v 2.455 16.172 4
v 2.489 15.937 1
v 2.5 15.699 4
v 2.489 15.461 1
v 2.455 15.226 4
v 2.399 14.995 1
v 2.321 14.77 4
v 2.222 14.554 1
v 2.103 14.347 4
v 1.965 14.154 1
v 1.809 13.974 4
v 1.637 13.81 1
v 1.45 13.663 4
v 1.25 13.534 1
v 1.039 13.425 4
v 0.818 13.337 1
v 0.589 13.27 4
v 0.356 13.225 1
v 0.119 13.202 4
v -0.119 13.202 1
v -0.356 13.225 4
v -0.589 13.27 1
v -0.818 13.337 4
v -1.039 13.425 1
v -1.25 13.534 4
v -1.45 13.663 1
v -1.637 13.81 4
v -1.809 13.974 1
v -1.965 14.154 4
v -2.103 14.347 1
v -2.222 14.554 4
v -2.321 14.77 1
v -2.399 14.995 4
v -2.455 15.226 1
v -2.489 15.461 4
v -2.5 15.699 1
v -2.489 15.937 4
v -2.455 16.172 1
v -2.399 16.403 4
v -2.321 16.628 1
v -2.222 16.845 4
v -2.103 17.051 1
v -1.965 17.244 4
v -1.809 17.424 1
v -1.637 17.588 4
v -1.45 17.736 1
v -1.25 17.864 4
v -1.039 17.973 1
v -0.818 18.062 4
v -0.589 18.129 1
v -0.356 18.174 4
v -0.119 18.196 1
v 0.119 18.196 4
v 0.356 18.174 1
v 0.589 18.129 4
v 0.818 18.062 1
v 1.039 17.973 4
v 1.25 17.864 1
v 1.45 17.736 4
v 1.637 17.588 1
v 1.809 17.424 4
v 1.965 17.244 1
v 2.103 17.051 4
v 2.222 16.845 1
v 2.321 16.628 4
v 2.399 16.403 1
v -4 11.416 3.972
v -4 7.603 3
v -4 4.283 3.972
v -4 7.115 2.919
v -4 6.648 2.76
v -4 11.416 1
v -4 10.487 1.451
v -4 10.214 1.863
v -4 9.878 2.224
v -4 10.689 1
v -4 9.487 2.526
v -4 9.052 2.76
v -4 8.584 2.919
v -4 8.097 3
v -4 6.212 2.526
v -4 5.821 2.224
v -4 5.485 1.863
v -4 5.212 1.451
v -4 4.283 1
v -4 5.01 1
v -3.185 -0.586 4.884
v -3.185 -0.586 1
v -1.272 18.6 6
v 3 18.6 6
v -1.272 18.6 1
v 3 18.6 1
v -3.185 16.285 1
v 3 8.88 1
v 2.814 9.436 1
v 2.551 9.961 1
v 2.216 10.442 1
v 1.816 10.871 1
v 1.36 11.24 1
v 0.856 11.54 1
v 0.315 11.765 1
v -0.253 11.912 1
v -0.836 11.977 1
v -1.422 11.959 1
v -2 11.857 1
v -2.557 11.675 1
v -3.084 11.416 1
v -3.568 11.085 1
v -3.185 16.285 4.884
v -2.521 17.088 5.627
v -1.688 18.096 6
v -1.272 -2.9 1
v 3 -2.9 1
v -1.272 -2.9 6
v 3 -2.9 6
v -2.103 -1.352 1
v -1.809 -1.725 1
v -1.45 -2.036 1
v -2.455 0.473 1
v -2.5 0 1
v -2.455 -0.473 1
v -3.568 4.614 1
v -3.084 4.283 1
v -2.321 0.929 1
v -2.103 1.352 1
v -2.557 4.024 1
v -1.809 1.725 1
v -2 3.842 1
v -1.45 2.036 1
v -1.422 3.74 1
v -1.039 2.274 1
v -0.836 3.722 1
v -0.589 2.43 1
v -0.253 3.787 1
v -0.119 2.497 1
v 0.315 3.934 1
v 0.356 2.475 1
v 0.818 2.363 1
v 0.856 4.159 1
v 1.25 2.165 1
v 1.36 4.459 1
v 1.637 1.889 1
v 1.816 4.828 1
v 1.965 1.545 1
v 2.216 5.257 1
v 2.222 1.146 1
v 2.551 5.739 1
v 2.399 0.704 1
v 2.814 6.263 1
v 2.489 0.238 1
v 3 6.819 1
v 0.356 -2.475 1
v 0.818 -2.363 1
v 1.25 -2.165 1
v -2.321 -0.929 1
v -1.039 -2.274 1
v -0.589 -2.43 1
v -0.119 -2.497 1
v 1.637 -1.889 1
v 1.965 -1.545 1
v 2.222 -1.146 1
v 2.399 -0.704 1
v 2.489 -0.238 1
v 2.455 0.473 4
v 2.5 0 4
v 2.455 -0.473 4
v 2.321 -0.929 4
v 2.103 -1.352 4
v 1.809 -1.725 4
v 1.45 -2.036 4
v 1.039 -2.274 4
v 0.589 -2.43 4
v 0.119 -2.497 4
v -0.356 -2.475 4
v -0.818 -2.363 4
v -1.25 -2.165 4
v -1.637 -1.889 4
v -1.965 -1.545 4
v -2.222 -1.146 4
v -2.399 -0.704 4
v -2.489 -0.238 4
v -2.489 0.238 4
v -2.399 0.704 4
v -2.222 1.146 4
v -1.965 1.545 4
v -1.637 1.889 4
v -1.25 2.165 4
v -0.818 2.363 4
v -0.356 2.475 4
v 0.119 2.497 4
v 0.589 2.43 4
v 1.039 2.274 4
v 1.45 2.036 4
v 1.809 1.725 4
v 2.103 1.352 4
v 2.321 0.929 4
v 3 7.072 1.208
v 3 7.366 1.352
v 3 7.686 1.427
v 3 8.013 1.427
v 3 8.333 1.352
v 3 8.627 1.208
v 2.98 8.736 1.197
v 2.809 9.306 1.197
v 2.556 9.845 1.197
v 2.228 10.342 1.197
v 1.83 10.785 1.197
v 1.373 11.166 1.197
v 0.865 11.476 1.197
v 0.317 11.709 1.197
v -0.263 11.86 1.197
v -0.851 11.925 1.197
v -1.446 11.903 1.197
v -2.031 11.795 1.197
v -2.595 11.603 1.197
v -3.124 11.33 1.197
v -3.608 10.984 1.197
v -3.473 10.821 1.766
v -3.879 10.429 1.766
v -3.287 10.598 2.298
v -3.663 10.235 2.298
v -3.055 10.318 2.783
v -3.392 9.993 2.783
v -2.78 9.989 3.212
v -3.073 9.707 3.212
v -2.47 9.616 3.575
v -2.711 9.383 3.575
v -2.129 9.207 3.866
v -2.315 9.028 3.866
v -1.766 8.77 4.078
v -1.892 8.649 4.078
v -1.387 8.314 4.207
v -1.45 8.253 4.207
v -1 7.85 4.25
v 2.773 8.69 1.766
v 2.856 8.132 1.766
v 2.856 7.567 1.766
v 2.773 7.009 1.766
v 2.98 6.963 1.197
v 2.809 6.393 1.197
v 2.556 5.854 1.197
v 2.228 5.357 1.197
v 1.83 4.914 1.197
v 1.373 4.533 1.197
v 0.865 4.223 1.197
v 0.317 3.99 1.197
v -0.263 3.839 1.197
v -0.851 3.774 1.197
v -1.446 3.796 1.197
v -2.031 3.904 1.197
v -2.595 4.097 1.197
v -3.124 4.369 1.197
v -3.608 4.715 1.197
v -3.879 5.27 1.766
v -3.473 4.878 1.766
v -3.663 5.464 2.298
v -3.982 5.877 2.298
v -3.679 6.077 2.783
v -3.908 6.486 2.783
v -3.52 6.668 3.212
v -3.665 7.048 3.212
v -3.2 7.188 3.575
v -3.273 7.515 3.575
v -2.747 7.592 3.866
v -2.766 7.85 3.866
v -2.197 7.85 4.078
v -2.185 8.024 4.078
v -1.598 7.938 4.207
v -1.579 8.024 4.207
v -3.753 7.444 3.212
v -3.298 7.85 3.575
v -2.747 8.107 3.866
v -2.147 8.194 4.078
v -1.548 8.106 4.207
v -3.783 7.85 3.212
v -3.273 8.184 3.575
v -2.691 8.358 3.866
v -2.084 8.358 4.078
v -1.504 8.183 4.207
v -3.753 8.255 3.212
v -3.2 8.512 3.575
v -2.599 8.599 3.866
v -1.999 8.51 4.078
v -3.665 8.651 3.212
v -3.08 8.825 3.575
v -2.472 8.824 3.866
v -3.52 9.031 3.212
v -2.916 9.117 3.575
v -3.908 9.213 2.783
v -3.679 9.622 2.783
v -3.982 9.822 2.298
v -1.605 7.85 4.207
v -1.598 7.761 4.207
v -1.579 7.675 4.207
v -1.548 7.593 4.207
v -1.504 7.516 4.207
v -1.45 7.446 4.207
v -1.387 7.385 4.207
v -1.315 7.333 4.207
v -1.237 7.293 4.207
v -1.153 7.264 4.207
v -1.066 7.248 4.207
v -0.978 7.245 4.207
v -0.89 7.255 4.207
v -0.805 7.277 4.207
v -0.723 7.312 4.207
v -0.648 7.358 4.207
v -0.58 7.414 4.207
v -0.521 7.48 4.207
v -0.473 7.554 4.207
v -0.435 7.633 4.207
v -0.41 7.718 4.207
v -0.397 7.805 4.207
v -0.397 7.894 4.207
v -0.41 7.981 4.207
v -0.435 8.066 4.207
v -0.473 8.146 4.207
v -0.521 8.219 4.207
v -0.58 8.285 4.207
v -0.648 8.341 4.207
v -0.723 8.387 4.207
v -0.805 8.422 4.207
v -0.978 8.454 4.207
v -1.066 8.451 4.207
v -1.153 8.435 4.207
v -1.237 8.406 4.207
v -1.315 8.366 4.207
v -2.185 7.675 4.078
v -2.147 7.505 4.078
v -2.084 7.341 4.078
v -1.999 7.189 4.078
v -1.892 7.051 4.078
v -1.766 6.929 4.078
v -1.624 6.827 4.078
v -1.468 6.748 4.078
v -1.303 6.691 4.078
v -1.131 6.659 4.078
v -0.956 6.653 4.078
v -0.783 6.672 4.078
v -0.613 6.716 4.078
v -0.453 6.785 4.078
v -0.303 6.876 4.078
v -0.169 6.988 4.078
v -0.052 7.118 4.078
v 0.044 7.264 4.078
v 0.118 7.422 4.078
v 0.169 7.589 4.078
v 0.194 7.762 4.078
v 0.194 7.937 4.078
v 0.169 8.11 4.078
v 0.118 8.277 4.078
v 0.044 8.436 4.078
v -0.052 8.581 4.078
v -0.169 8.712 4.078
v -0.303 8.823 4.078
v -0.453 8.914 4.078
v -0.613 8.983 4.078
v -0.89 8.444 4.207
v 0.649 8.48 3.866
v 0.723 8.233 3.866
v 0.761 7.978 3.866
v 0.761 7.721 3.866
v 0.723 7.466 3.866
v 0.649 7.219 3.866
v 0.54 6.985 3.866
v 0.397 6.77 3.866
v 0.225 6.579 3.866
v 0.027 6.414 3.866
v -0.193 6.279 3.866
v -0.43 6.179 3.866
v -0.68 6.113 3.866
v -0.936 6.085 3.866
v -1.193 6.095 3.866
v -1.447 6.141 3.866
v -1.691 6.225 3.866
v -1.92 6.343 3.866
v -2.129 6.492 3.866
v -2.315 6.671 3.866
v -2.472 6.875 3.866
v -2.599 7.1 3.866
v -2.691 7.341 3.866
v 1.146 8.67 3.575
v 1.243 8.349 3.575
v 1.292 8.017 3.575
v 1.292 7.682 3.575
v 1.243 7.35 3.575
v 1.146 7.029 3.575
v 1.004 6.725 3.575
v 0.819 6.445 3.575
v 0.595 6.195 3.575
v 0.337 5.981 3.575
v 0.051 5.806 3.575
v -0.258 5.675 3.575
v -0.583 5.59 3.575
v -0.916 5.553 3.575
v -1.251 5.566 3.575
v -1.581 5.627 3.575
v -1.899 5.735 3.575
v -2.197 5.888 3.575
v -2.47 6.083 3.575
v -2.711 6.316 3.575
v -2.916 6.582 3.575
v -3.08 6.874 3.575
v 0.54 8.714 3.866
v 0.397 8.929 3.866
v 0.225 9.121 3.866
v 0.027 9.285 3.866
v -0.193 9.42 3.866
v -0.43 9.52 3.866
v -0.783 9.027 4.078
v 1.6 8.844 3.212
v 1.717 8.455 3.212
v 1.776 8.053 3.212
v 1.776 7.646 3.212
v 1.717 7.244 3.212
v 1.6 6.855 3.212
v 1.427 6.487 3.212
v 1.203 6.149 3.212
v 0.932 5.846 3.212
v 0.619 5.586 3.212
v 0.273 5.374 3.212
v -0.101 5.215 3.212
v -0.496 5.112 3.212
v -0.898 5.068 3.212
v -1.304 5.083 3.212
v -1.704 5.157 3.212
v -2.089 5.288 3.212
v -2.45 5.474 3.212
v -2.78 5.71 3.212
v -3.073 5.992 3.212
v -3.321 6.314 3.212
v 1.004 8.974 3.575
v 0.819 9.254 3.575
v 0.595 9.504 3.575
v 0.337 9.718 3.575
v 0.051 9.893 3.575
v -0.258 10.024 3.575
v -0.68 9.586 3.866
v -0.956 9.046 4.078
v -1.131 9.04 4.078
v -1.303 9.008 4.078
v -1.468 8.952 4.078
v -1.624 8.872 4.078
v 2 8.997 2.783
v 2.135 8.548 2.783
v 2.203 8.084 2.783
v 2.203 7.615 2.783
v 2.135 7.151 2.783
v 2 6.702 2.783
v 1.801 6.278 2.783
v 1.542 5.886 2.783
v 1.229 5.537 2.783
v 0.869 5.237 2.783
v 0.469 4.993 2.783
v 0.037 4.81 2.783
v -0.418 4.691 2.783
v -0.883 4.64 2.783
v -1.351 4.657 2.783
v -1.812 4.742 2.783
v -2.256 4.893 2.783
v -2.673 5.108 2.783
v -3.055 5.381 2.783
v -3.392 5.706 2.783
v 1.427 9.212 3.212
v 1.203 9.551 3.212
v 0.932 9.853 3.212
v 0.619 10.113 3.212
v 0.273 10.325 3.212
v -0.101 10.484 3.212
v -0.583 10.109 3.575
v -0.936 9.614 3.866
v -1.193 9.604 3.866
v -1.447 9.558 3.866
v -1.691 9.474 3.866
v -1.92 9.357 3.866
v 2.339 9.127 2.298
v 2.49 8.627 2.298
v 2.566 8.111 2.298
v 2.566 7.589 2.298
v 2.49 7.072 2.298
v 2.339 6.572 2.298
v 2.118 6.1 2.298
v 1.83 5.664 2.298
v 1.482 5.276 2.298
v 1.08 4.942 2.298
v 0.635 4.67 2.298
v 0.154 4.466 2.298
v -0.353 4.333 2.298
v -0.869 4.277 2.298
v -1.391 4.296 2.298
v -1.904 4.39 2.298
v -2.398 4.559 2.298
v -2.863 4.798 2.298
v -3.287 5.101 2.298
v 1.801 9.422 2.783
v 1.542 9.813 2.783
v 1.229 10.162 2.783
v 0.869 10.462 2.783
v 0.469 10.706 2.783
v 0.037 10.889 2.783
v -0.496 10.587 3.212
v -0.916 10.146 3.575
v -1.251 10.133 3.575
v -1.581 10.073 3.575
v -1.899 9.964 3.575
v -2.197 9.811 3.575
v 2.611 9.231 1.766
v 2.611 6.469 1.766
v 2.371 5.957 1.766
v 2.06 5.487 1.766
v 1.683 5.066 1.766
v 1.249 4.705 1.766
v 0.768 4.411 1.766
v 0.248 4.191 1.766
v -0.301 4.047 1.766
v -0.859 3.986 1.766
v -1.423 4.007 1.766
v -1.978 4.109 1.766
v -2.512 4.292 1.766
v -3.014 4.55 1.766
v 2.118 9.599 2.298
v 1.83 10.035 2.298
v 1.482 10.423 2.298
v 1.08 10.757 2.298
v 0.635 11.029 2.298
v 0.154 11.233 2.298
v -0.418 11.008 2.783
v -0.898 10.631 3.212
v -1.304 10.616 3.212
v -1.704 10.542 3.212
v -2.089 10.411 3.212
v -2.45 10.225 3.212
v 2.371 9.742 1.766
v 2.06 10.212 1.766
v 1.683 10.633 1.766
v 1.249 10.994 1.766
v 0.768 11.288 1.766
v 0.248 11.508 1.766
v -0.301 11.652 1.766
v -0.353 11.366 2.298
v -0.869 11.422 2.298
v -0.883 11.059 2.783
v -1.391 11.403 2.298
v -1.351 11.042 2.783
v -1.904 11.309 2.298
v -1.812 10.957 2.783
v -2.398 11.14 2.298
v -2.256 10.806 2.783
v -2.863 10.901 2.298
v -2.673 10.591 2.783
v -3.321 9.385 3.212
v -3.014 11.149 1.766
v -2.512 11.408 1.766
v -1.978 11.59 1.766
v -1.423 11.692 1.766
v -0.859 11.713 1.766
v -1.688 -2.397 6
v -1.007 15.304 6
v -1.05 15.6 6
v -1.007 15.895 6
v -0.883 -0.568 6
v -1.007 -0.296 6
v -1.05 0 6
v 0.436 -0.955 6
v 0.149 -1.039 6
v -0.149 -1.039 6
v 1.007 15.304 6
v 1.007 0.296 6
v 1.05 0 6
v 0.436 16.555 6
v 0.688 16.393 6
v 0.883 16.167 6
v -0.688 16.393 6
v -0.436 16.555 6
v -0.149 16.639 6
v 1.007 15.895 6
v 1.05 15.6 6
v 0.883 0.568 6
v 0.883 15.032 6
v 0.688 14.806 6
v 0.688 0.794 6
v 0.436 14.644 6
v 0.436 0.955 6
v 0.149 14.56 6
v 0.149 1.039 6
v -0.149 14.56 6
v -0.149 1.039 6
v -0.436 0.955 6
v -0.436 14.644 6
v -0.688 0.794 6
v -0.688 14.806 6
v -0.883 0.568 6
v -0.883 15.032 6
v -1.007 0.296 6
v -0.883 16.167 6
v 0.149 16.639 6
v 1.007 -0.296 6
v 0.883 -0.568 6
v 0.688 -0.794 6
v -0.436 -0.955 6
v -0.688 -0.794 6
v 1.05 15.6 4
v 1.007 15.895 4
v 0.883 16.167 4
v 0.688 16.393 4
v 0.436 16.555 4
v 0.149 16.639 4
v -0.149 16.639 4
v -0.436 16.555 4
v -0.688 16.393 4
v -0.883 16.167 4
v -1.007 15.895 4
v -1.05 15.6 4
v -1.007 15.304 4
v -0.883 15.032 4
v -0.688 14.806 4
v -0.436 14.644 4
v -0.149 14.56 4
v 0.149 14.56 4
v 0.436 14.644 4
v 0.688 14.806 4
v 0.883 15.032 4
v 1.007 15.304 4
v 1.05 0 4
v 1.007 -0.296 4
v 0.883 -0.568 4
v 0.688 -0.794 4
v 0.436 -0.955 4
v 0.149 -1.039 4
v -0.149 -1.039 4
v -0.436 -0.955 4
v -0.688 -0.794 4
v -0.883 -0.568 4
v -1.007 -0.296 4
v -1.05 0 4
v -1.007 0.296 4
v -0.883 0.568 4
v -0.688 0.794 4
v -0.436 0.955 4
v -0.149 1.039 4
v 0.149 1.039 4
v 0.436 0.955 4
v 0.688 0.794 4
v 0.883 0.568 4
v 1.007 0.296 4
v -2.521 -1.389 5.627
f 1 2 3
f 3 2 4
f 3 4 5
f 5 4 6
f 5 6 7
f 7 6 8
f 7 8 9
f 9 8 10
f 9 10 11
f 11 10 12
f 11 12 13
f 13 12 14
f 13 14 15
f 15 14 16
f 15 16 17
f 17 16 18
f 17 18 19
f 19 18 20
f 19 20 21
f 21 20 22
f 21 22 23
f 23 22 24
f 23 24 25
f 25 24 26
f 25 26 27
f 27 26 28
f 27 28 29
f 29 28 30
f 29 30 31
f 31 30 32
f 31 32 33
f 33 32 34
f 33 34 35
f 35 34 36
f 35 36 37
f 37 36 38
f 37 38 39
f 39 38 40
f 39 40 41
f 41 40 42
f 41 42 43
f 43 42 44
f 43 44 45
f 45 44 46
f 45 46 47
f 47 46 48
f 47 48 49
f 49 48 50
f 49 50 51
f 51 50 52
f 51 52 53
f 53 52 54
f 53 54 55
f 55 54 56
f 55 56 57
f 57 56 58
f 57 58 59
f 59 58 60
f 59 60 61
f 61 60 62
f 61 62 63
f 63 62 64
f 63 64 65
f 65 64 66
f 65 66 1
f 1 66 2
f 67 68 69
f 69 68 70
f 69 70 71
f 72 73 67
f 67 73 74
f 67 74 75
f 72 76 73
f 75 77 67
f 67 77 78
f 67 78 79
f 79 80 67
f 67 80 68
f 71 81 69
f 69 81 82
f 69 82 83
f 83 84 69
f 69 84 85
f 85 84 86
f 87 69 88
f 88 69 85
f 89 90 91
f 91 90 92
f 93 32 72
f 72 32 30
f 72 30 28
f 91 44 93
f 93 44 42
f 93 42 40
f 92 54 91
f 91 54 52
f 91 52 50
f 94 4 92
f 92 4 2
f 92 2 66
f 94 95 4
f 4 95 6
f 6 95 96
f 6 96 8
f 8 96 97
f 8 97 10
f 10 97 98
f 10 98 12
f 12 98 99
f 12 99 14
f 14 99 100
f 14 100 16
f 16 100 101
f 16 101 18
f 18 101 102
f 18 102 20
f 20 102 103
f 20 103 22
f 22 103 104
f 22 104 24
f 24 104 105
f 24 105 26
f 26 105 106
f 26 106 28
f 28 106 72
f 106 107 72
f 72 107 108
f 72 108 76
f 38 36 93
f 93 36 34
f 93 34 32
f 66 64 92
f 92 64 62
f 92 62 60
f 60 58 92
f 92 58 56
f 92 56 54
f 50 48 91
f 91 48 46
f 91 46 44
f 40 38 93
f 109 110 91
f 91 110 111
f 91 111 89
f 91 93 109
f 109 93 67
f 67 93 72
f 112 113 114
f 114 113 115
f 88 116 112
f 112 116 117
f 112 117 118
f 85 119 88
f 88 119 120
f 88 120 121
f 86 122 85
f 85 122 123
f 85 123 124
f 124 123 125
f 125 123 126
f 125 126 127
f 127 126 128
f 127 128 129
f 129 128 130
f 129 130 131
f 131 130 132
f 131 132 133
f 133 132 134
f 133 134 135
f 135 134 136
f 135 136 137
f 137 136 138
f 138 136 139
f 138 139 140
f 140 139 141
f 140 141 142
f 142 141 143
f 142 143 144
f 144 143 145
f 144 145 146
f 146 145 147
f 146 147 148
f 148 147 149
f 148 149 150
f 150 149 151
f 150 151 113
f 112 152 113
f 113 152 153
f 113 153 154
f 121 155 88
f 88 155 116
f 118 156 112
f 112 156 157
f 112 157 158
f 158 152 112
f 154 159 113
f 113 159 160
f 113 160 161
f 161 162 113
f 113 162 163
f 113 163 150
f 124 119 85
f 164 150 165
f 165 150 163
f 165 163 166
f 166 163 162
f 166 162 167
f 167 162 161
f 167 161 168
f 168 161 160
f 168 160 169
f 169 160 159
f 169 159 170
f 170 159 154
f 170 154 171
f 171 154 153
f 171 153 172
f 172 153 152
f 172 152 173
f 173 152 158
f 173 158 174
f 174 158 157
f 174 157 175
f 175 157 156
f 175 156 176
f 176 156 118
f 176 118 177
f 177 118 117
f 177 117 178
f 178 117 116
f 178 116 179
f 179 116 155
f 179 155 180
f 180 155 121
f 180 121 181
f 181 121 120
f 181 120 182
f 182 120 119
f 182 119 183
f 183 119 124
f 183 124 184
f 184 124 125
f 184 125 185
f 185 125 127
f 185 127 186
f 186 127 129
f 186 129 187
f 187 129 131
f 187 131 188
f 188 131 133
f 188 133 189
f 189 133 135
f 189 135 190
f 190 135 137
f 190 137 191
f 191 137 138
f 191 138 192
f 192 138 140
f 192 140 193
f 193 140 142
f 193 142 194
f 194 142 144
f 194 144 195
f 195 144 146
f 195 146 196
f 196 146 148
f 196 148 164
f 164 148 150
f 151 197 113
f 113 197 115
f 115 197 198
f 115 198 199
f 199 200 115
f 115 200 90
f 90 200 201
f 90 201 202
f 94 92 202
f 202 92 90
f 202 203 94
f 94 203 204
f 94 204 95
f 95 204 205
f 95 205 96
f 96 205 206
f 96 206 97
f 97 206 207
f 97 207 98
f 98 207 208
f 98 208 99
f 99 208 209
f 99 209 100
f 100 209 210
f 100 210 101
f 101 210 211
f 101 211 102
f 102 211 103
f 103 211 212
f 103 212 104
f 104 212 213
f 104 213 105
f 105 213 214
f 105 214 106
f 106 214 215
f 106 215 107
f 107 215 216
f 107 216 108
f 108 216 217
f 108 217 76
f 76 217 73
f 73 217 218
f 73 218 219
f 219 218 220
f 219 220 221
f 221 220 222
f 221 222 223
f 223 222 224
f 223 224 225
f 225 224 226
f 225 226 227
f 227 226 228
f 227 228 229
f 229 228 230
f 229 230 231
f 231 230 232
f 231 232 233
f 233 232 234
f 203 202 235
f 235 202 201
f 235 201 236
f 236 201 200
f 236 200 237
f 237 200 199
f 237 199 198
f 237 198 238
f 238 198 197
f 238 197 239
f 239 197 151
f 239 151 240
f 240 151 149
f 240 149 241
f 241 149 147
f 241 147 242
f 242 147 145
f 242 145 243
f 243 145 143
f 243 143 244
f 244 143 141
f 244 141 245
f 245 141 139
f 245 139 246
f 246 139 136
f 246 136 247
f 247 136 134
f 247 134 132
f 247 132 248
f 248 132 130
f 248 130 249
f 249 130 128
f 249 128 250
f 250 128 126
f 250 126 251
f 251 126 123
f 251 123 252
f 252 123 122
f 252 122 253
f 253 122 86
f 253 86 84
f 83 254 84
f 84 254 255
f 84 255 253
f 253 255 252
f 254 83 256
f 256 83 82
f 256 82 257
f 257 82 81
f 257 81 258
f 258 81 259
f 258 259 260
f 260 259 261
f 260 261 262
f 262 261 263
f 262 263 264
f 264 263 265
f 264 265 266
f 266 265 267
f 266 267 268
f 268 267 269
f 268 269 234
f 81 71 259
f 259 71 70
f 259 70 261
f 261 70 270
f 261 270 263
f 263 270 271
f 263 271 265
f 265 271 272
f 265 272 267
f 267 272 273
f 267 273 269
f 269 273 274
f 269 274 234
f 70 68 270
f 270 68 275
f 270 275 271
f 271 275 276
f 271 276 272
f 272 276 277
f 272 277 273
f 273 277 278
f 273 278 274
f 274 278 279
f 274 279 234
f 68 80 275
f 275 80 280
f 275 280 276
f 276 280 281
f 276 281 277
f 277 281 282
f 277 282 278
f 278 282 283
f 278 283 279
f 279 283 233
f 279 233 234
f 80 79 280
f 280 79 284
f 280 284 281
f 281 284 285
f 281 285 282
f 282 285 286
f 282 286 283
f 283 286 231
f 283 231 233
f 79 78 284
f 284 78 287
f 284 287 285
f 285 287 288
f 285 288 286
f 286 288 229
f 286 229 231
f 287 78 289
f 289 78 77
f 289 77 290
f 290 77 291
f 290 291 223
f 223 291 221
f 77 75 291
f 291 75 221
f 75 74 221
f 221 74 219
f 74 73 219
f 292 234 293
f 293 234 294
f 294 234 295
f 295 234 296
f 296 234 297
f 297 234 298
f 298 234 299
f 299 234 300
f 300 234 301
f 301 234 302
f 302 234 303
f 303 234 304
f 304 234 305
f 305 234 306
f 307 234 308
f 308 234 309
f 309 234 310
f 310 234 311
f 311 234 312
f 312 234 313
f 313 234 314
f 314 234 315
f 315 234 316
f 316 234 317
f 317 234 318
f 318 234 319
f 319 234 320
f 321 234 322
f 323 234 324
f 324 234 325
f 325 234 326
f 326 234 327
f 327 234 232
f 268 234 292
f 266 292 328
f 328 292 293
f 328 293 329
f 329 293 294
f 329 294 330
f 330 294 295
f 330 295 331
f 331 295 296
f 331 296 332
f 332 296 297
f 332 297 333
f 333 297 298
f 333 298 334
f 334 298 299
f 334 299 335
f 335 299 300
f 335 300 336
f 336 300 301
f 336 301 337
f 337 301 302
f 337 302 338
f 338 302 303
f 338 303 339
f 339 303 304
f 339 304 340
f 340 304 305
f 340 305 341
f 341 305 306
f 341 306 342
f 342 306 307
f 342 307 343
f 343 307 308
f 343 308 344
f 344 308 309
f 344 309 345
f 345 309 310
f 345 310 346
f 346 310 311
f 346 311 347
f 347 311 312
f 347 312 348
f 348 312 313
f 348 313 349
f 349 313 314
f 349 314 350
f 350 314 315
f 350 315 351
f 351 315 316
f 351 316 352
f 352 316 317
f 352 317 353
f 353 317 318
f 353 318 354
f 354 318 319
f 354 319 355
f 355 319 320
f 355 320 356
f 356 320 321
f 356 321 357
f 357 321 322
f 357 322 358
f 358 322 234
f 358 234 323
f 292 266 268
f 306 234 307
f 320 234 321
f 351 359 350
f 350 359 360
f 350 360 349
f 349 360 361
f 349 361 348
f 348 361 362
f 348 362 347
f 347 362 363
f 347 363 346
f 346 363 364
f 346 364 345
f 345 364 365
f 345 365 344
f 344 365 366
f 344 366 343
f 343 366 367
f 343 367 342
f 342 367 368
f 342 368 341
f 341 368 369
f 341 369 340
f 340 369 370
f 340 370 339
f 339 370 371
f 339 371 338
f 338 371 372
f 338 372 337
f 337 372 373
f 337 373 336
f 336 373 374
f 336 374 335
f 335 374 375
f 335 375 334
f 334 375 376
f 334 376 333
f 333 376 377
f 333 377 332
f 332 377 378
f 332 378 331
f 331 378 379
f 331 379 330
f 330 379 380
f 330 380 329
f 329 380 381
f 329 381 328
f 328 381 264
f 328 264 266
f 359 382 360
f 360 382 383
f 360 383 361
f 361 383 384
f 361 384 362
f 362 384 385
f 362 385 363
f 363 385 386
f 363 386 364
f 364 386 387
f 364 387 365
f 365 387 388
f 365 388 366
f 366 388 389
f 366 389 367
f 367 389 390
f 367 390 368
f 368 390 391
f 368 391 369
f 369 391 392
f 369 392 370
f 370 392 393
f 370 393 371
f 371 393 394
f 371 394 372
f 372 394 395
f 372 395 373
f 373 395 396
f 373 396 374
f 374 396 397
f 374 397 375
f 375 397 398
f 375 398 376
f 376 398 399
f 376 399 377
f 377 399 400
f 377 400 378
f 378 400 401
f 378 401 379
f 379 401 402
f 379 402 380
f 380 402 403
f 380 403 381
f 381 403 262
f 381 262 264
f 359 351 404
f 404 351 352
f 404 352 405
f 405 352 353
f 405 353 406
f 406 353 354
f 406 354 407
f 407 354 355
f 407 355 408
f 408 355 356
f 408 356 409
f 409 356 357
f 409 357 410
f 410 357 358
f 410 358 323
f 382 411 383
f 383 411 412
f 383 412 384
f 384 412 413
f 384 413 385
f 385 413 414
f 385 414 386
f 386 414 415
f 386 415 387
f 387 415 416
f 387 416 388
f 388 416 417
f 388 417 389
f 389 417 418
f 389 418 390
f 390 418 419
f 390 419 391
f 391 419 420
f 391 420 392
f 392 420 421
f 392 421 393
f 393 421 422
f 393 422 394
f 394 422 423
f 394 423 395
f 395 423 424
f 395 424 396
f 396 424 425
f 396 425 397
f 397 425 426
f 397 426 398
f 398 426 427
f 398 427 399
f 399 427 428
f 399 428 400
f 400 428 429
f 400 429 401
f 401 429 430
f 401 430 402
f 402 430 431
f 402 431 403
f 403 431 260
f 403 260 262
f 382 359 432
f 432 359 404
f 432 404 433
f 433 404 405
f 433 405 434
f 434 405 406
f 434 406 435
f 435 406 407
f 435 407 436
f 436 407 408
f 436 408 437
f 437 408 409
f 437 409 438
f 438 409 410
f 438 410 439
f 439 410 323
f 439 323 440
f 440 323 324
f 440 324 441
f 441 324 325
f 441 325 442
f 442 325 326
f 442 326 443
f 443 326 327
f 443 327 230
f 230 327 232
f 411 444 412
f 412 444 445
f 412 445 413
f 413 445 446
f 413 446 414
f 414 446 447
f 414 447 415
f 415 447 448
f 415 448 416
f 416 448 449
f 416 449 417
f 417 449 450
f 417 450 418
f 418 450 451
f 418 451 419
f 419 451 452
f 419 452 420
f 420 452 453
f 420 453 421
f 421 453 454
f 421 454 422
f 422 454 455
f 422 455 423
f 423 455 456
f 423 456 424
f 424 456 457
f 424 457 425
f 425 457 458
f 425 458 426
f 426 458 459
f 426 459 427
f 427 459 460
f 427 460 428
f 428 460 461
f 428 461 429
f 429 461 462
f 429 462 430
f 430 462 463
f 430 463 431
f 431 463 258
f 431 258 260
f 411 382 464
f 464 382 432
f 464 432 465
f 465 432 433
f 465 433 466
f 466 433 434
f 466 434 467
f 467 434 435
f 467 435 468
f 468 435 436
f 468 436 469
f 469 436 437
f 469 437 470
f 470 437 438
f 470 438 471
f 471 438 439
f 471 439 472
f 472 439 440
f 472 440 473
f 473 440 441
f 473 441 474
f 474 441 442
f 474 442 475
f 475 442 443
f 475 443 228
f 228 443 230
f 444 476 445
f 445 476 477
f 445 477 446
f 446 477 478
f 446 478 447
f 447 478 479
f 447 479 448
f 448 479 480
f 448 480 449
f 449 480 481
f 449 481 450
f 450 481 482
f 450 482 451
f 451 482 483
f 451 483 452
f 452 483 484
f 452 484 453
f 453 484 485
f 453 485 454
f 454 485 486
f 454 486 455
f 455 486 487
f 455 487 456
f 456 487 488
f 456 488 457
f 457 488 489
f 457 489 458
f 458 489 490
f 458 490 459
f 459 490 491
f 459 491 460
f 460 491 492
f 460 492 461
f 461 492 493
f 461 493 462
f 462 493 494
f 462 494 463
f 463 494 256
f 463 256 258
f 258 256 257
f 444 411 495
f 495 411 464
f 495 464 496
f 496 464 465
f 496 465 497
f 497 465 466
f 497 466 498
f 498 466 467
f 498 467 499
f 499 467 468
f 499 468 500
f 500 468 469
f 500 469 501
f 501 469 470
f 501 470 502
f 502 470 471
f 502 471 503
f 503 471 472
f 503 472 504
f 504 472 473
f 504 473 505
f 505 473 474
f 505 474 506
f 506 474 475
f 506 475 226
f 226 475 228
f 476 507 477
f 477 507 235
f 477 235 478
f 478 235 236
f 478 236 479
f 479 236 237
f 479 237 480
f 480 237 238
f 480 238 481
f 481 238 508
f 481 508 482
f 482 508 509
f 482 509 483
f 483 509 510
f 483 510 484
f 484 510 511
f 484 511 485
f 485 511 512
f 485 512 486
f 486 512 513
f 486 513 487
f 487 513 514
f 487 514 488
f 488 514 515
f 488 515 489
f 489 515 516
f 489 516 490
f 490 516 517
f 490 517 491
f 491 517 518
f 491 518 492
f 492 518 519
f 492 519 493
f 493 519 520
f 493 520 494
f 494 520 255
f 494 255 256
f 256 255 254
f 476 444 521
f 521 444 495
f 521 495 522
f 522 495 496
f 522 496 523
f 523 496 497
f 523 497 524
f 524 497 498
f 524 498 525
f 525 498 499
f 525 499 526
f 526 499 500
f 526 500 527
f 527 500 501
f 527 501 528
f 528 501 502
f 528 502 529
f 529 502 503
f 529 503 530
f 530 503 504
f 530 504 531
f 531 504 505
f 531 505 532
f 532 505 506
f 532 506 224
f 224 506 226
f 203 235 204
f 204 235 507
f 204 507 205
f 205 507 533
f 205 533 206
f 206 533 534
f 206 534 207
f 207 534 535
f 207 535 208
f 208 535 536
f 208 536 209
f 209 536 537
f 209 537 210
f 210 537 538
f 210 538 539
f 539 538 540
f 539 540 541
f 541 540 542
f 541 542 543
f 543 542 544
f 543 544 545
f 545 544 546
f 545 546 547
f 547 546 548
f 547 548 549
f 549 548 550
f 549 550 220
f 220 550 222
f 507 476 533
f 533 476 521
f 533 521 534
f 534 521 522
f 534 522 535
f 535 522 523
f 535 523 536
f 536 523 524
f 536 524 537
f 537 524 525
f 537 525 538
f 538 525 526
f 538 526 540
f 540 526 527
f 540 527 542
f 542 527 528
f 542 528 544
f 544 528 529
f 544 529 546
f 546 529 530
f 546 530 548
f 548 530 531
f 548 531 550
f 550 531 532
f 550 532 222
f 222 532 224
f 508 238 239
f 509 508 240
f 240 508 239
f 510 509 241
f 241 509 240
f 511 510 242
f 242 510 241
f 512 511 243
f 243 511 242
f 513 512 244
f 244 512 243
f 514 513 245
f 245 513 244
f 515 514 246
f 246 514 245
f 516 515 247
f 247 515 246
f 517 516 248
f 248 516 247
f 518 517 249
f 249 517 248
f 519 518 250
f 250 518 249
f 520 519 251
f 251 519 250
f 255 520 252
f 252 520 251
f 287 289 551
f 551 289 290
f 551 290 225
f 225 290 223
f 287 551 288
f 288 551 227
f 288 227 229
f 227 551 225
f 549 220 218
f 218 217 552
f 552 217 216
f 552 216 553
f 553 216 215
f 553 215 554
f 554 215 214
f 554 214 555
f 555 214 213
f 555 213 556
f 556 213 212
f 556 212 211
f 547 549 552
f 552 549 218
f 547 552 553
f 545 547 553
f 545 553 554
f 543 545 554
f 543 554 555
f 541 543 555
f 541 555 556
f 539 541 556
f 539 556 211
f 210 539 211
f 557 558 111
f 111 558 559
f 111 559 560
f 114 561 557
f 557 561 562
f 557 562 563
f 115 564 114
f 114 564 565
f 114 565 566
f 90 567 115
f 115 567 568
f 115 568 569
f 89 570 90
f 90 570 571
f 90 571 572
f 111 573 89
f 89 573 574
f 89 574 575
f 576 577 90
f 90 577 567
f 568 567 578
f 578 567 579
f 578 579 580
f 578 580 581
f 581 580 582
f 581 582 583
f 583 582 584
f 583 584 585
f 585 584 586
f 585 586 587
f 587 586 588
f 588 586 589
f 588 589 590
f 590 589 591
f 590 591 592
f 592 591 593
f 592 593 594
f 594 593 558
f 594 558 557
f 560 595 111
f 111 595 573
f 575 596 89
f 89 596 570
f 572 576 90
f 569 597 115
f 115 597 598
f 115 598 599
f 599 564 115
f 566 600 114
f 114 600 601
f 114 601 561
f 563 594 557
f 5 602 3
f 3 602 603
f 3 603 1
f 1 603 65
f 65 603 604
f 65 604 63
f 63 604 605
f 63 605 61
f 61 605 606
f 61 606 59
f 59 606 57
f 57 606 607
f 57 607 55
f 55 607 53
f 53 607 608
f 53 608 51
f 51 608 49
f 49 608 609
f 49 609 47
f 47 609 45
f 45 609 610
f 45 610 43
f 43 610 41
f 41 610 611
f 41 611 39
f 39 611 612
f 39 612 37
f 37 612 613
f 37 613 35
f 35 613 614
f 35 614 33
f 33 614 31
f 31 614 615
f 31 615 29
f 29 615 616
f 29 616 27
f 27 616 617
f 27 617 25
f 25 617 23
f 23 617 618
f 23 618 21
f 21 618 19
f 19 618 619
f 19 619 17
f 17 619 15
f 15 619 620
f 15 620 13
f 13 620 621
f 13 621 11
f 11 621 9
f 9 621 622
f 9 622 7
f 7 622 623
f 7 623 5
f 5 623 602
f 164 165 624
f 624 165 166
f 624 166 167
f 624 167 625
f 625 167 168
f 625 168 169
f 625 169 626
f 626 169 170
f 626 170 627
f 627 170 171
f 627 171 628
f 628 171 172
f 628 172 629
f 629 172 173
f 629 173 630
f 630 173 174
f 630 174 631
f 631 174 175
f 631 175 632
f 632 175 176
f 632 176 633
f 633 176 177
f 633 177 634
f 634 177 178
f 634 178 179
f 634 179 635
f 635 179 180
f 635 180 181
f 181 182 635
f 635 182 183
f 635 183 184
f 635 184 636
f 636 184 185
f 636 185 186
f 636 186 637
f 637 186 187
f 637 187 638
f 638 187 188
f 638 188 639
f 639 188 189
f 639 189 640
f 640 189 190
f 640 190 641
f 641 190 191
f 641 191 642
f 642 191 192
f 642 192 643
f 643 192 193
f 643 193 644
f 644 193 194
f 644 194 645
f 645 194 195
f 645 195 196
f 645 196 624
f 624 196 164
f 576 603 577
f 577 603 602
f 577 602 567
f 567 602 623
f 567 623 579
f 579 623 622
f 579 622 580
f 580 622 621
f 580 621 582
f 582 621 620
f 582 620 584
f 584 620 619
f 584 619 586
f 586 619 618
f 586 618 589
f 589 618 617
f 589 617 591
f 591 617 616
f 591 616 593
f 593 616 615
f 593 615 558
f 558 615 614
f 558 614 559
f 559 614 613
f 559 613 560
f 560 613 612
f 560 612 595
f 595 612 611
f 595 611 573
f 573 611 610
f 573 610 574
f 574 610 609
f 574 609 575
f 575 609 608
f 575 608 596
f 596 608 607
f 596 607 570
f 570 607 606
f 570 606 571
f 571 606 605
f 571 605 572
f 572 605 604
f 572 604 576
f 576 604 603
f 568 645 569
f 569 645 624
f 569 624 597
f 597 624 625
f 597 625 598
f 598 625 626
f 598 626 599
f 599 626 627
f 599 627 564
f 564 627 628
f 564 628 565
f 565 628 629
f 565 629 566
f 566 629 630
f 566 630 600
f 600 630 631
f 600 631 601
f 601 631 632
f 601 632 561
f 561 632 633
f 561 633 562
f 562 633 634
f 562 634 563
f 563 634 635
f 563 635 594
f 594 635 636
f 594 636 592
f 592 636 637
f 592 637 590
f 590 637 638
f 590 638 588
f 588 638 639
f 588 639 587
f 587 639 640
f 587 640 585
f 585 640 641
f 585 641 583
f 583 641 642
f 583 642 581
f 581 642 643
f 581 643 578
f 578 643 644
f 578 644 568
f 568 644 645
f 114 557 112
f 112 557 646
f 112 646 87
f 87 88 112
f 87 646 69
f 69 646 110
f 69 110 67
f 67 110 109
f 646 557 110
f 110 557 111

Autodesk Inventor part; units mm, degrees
ref_plane "YZ Plane" through (0, 0, 0) normal (1, 0, 0) x (0, 1, 0)
ref_plane "XZ Plane" through (0, 0, 0) normal (0, 1, 0) x (-1, 0, 0)
sketch "Skizze1" plane through (0, 0, 0) normal (0, 0, 1) x (1, 0, 0)
  circle A0 centre (0, 0) radius 2 projected
  circle A1 centre (0, 0) radius 1.05 projected
  circle A2 centre (0, 15.5995) radius 2 projected
  circle A3 centre (0, 15.5995) radius 1.05 projected
  line L0 (0, 18.5995) -> (4, 18.5995) projected
  line L1 (-2.8284, 15.7711) -> (0, 18.5995) projected
  arc A4 (-2.8284, 15.7711) -> (-4, 12.9427) centre (0, 12.9427) ccw projected
  line L2 (-4, 12.9427) -> (-4, 10.689) projected
  line L3 (-4, 5.0101) -> (-4, 2.7564) projected
  arc A5 (-4, 2.7564) -> (-2.8284, -0.072) centre (0, 2.7564) ccw projected
  line L4 (0, -2.9005) -> (-2.8284, -0.072) projected
  line L5 (4, -2.9005) -> (0, -2.9005) projected
  line L6 (4, 18.5995) -> (4, -2.9005) projected
  line L7 (-4, 10.689) -> (-4, 5.0101)
  point P0 (0, 0)
extrude "Extrusion1" add sketch "Skizze1" along normal blind 4 contours L0 L6 L5 L4 A5 L3 L7 L2 A4 L1
sketch "Skizze2" plane through (0, 0, 4) normal (0, 0, 1) x (1, 0, 0)
  line L0 (0, 18.5995) -> (-2.8284, 15.7711) projected
  arc A0 (-2.8284, 15.7711) -> (-4, 12.9427) centre (0, 12.9427) ccw projected
  line L1 (-4, 12.9427) -> (-4, 2.7564) projected
  arc A1 (-4, 2.7564) -> (-2.8284, -0.072) centre (0, 2.7564) ccw projected
  line L2 (-2.8284, -0.072) -> (0, -2.9005) projected
  line L3 (0, -2.9005) -> (4, -2.9005) projected
  line L4 (4, -2.9005) -> (4, 18.5995) projected
  line L5 (4, 18.5995) -> (0, 18.5995) projected
  circle A2 centre (0, 15.5995) radius 2 projected
  circle A3 centre (0, 0) radius 2 projected
  circle A4 centre (0, 15.5995) radius 1.05
  circle A5 centre (0, 0) radius 1.05
  point P0 (0, 0)
  dimension "d2" = 2.1
  dimension "d3" = 2.1
extrude "Extrusion2" add sketch "Skizze2" along normal blind 2 contours L5 L4 L3 L2 A1 L1 A0 L0 | A2 | A3
sketch "Skizze3" plane through (0, 0, 0) normal (0, 0, -1) x (-1, 0, 0)
  line L0 (0, -2.9005) -> (-4, -2.9005) projected
  line L1 (-4, -2.9005) -> (-4, 7.8495)
  line L2 (-4, -2.9005) -> (-4, 18.5995) projected
  line L3 (-4, 7.8495) -> (1, 7.8495)
  circle A0 centre (1, 7.8495) radius 4.25
  line L4 (1, 7.8495) -> (5.25, 7.8495)
  line L5 (4, 12.9427) -> (4, 2.7564) projected
  point P0 (0, 0)
  point P1 (4, 7.8495)
  point P2 (4, 10.8599)
  point P3 (-3.25, 7.8495)
  dimension "d7" = 8.5
  dimension "d8" = 3
revolve "Umdrehung1" cut sketch "Skizze3" angle 360 about axis through (4, 7.8495, 0) along (-1, 0, 0) picked at (3, 8.853) contours A0 L5 L4 L3
sketch "Skizze4" plane through (0, 0, 0) normal (0, 0, -1) x (-1, 0, 0)
  line L0 (-4.7683, -3.7941) -> (5.6191, -3.7941)
  line L1 (5.6191, -3.7941) -> (5.6191, 20.4958)
  line L2 (5.6191, 20.4958) -> (-4.7683, 20.4958)
  line L3 (-4.7683, 20.4958) -> (-4.7683, -3.7941)
  point P0 (0, 0)
extrude "Extrusion3" cut sketch "Skizze4" against normal blind 1
sketch "Skizze5" plane through (4, -2.9005, 6) normal (1, 0, 0) x (0, 0, -1)
  line L0 (5, 0) -> (5, 21.5) projected
  line L1 (5, 21.5) -> (0, 21.5) projected
  line L2 (0, 0) -> (0, 21.5) projected
  line L3 (5, 0) -> (0, 0) projected
  point P0 (6, 2.9005)
extrude "Extrusion4" cut sketch "Skizze5" against normal blind 1
sketch "Skizze6" plane through (0, 0, 1) normal (0, 0, -1) x (-1, 0, 0)
  line L0 (2.8284, -0.072) -> (0, -2.9005) projected
  line L1 (0, -2.9005) -> (0.4894, -2.9005)
  arc A0 (2.8284, -0.072) -> (4, 2.7564) centre (0, 2.7564) ccw projected
  line L2 (0.4894, -2.9005) -> (4, -2.9005)
  line L3 (4, -2.9005) -> (4, 2.7564)
  point P0 (0, 0)
  point P1 (3.7092, 1.2591)
extrude "Extrusion5" add sketch "Skizze6" against normal up to surface (5 mm away)
ref_plane "Arbeitsebene1" through (0, 7.8495, 6) normal (0, 1, 0) x (1, 0, 0)
sketch "Skizze9" plane through (0, 0, 1) normal (0, 0, -1) x (-1, 0, 0)
  circle A0 centre (0, 0) radius 2.5
  dimension "d24" = 5
extrude "Extrusion8" cut sketch "Skizze9" against normal up to surface (3 mm away)
sketch "Skizze10" plane through (0, 0, 1) normal (0, 0, -1) x (-1, 0, 0)
  line L0 (0.6938, -3.6003) -> (3.1846, -0.5858)
  line L1 (3.1846, -0.5858) -> (4, 4.2826)
  line L2 (4, -2.9005) -> (4, 5.0101) projected
  line L3 (4, -2.9005) -> (-3, -2.9005) projected
  point P0 (0, 0)
  point P1 (1.272, -2.9005)
extrude "Extrusion9" cut sketch "Skizze10" against normal through all
mirror "Spiegeln3" about plane through (0, 7.8495, 6) normal (0, 1, 0) of "Extrusion5", "Extrusion8", "Extrusion9"
sketch "Skizze11" plane through (3, 18.5995, 6) normal (0, 1, 0) x (1, 0, 0)
  line L0 (-7, 2.9896) -> (-7, 5) projected
  line L1 (-7.4841, 2.5704) -> (-4.5207, -0.7469)
  line L2 (-4.5207, -0.7469) -> (-5.1252, -3.6367)
  line L3 (-5.1252, -3.6367) -> (-9.8579, -0.57)
  line L4 (-9.8579, -0.57) -> (-7.4841, 2.5704)
  point P0 (-3, 6)
extrude "Extrusion10" cut sketch "Skizze11" against normal through all
chamfer "Fase2" distance 0.5 angle 45 1 edges at (-2.188, 7.8495, 6)
properties part number "BallJointClamp"
